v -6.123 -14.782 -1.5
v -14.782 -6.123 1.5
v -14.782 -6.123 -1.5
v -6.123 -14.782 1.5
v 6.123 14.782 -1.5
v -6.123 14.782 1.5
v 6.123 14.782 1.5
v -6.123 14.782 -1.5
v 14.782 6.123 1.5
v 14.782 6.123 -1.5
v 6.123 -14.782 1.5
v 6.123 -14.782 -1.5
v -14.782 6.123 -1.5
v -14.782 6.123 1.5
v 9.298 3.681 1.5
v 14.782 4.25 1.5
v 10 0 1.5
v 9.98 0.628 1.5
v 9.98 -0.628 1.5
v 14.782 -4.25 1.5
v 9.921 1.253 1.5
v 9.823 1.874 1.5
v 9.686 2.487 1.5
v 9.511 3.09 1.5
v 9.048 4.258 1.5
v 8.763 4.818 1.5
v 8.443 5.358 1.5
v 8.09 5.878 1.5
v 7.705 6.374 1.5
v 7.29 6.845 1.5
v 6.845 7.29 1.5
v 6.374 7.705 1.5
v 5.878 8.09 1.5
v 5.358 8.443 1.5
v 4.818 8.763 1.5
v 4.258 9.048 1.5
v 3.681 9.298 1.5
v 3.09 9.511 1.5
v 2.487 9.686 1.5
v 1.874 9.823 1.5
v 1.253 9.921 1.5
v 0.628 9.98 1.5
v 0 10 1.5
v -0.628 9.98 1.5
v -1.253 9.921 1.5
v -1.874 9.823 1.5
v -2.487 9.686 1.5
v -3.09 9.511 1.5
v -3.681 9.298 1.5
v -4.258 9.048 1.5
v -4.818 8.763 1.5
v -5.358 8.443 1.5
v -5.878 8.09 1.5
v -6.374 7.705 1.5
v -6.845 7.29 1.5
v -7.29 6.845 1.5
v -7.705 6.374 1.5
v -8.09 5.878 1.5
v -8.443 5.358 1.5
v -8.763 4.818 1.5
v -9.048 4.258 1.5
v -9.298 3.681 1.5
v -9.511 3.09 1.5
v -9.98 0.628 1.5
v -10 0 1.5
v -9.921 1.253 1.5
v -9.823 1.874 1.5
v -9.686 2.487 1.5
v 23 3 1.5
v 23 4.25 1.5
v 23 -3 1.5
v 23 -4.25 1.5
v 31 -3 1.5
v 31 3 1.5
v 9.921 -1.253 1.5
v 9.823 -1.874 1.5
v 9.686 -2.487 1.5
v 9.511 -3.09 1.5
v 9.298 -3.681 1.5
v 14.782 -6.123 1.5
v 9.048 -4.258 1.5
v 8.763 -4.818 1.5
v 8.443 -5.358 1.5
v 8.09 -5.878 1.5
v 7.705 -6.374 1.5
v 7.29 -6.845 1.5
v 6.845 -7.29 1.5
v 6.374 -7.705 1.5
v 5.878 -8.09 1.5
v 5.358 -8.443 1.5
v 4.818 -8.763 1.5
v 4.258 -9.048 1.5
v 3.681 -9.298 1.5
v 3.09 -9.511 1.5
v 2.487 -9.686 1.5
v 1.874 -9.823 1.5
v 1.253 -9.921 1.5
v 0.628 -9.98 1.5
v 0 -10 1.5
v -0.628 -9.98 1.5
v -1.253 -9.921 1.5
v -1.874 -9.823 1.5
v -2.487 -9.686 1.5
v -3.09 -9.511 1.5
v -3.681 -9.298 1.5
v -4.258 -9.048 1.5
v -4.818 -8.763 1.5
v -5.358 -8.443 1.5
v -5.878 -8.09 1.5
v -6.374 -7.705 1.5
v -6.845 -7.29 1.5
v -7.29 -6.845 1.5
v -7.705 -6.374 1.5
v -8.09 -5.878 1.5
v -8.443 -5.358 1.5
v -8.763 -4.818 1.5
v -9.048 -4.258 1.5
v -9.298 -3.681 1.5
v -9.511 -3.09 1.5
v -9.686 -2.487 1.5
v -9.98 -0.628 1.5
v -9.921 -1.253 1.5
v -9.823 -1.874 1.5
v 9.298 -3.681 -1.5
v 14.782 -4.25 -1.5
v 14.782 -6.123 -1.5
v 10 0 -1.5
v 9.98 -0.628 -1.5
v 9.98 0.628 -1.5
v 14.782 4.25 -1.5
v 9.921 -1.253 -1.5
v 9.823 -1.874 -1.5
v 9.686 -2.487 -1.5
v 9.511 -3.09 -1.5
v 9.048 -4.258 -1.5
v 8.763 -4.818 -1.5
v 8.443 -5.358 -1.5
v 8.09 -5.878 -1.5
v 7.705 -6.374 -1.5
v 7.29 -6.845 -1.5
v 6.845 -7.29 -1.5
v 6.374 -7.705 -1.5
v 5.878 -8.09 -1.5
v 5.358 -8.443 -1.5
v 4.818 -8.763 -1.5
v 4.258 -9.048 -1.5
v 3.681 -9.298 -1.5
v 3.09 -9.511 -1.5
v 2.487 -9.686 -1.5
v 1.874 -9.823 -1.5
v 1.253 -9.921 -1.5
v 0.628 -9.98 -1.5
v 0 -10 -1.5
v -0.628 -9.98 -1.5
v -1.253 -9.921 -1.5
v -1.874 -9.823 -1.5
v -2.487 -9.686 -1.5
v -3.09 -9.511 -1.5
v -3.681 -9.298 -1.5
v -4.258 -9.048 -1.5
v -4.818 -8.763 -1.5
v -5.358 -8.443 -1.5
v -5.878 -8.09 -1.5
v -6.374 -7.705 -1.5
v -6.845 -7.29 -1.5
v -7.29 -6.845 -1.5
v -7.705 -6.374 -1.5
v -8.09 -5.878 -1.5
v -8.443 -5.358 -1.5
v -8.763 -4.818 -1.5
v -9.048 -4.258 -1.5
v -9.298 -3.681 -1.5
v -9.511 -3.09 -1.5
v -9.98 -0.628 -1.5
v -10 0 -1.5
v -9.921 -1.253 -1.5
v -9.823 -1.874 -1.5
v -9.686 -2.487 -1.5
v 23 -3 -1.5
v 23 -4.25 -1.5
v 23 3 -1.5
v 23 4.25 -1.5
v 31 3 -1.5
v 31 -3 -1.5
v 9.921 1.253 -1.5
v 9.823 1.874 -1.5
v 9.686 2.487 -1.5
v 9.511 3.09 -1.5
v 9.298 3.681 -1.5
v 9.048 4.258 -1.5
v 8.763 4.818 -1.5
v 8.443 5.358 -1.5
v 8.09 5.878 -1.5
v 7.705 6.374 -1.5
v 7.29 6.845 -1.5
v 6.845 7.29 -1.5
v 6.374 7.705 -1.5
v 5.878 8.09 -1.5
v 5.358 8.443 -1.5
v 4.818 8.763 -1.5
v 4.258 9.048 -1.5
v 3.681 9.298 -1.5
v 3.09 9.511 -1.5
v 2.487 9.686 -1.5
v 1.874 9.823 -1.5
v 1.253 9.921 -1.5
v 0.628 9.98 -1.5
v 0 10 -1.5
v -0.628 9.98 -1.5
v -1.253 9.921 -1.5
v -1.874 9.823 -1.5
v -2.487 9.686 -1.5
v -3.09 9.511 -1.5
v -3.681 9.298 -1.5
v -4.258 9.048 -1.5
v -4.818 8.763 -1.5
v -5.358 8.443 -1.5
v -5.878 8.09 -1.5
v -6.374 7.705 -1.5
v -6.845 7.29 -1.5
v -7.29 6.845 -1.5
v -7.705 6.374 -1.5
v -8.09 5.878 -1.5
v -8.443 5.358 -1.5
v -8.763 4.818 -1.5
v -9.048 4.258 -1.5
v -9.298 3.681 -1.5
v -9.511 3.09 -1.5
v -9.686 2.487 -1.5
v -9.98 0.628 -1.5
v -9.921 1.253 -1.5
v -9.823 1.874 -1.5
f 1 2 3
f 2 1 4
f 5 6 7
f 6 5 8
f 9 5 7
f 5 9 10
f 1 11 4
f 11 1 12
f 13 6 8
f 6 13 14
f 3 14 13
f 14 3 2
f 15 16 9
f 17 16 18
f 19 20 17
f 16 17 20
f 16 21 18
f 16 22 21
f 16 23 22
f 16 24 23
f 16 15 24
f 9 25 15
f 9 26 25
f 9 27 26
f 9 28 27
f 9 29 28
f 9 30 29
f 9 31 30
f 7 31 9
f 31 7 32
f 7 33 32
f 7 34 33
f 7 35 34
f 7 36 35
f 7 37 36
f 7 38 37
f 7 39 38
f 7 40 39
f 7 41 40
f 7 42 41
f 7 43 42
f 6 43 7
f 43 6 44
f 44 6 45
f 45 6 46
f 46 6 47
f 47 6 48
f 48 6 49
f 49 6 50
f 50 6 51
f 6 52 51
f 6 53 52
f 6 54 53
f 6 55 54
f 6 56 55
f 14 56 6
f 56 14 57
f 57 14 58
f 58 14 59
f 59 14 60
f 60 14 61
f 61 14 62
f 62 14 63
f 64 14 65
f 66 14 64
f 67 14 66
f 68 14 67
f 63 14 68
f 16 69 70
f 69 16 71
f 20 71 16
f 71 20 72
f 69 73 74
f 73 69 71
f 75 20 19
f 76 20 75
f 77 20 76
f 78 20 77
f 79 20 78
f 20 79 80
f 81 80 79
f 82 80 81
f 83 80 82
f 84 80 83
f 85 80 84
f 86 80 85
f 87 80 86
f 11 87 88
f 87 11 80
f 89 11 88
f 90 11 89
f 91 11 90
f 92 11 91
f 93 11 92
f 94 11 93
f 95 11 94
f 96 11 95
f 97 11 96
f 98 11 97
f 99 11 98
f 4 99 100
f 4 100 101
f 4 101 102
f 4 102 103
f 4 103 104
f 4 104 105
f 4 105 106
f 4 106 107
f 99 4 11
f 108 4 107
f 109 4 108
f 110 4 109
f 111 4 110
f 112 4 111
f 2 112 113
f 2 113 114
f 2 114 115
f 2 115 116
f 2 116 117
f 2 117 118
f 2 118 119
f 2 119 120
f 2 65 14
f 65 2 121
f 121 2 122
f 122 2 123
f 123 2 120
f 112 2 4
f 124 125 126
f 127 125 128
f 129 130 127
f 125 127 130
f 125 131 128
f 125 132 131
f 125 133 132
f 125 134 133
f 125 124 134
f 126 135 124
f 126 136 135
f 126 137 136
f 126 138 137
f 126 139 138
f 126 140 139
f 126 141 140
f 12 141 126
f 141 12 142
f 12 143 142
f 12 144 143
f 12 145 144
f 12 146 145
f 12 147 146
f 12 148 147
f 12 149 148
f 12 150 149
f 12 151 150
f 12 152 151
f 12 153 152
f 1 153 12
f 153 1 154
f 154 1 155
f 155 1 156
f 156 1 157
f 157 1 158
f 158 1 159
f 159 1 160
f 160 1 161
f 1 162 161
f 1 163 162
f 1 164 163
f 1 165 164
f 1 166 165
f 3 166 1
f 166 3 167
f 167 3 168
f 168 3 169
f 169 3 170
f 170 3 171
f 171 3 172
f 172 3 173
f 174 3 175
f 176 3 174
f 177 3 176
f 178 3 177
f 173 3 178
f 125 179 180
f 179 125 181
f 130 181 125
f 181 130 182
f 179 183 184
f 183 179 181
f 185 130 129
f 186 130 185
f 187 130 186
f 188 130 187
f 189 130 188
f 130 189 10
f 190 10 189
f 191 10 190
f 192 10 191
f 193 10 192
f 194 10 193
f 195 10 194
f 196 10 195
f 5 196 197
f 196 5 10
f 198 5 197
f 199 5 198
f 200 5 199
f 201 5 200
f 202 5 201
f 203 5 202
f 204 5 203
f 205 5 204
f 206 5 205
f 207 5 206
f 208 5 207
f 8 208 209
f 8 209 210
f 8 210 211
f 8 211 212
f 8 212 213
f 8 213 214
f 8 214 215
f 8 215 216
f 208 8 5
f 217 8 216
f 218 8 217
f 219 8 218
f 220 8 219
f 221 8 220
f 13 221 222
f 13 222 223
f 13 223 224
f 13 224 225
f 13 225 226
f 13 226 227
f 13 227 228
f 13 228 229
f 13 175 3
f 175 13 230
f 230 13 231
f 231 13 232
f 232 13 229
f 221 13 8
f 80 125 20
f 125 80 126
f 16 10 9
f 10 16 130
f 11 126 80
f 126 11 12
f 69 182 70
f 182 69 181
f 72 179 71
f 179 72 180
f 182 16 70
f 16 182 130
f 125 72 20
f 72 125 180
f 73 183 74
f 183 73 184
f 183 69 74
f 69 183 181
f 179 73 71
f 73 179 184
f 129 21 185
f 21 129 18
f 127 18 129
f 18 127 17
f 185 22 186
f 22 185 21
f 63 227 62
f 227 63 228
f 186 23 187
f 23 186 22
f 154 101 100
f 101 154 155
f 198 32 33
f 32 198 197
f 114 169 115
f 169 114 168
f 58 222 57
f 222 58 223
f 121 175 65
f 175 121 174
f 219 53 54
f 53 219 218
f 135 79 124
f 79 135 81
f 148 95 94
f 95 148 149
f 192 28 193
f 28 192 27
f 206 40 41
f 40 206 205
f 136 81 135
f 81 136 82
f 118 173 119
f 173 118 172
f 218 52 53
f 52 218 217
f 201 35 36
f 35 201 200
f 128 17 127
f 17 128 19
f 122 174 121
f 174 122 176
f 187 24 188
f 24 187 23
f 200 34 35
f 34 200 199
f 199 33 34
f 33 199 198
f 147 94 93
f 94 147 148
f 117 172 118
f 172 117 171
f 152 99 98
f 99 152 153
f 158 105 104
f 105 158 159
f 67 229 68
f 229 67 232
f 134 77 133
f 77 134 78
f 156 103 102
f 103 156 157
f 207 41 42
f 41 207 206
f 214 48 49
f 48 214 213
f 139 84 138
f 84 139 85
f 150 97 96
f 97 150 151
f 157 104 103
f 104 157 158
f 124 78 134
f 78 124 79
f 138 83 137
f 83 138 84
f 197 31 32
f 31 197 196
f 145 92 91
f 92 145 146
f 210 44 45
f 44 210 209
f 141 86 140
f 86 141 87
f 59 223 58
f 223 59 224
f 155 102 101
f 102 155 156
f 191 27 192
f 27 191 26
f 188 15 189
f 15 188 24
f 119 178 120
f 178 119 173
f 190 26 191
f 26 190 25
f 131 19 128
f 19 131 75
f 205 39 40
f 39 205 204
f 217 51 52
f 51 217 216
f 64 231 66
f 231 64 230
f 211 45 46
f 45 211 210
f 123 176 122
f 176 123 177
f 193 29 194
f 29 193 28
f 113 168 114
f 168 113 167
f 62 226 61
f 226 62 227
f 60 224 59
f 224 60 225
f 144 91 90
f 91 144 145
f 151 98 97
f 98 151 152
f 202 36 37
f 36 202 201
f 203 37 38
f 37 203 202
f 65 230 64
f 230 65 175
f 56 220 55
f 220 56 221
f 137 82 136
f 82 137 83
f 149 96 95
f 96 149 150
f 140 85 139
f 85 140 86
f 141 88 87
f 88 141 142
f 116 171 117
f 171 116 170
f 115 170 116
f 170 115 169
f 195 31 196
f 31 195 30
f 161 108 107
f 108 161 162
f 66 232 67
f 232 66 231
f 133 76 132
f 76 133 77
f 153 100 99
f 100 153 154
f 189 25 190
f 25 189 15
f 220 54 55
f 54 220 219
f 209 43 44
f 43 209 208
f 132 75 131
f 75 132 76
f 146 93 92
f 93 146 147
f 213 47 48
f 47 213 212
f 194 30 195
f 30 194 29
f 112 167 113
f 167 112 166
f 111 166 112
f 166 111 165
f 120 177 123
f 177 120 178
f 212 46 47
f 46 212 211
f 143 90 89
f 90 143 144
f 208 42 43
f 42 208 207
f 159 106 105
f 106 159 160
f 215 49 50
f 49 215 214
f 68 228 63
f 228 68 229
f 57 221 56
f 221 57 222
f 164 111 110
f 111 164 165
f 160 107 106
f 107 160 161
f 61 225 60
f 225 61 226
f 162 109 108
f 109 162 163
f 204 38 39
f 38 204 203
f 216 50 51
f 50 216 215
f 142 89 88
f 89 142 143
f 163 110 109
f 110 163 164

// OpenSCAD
//Cube insert template

IM_offset = 0.05;

w_port = 6;
h_port = 3;

w_plate = 32; 
h_plate = 3;

d_hole = 20;


module sampleHolder(){
    difference(){
    union(){
        rotate([0, 0, 45/2]) cylinder(d = w_plate, h = h_plate, center=true, $fn=8);
        translate([18, 0, 0]) cube([10, 8.5, h_port], center=true);
        translate([26, 0, 0]) cube([10, w_port, h_port], center=true);
    }
    cylinder(d = d_hole, h = 20, center=true, $fn=100);
    }
}

sampleHolder();
